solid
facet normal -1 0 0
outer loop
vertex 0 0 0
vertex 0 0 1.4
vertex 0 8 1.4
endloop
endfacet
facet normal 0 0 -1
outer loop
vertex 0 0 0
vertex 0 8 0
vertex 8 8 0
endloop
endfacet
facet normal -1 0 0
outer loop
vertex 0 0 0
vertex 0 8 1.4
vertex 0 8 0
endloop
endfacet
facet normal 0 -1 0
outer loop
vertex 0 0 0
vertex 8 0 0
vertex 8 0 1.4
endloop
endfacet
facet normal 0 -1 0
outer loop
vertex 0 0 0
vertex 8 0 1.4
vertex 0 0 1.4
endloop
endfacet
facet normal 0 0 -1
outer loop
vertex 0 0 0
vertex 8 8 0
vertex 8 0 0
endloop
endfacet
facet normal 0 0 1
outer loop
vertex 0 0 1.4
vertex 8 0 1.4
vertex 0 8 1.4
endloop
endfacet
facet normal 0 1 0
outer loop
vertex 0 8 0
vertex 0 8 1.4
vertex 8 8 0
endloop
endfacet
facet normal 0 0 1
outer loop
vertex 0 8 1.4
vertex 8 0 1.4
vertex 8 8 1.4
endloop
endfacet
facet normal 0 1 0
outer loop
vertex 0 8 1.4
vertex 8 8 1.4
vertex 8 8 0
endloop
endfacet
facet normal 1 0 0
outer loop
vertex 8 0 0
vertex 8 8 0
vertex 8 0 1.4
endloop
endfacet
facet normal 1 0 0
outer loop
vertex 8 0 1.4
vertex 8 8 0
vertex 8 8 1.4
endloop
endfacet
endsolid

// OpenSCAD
/* Warning, this is a very basic generator with a lot of approximation 
input data : [LFBGA, A6B, 8x8x1.4mm, 64, , A, C04-21114A]
generated by com.zoubworld.electronics.cad.model3d.Basic
Date : Sun Feb 15 10:50:49 CET 2026
*/

//body
color("black")
translate([0,0,0])
cube([8.0,8.0,1.4], center=false);
